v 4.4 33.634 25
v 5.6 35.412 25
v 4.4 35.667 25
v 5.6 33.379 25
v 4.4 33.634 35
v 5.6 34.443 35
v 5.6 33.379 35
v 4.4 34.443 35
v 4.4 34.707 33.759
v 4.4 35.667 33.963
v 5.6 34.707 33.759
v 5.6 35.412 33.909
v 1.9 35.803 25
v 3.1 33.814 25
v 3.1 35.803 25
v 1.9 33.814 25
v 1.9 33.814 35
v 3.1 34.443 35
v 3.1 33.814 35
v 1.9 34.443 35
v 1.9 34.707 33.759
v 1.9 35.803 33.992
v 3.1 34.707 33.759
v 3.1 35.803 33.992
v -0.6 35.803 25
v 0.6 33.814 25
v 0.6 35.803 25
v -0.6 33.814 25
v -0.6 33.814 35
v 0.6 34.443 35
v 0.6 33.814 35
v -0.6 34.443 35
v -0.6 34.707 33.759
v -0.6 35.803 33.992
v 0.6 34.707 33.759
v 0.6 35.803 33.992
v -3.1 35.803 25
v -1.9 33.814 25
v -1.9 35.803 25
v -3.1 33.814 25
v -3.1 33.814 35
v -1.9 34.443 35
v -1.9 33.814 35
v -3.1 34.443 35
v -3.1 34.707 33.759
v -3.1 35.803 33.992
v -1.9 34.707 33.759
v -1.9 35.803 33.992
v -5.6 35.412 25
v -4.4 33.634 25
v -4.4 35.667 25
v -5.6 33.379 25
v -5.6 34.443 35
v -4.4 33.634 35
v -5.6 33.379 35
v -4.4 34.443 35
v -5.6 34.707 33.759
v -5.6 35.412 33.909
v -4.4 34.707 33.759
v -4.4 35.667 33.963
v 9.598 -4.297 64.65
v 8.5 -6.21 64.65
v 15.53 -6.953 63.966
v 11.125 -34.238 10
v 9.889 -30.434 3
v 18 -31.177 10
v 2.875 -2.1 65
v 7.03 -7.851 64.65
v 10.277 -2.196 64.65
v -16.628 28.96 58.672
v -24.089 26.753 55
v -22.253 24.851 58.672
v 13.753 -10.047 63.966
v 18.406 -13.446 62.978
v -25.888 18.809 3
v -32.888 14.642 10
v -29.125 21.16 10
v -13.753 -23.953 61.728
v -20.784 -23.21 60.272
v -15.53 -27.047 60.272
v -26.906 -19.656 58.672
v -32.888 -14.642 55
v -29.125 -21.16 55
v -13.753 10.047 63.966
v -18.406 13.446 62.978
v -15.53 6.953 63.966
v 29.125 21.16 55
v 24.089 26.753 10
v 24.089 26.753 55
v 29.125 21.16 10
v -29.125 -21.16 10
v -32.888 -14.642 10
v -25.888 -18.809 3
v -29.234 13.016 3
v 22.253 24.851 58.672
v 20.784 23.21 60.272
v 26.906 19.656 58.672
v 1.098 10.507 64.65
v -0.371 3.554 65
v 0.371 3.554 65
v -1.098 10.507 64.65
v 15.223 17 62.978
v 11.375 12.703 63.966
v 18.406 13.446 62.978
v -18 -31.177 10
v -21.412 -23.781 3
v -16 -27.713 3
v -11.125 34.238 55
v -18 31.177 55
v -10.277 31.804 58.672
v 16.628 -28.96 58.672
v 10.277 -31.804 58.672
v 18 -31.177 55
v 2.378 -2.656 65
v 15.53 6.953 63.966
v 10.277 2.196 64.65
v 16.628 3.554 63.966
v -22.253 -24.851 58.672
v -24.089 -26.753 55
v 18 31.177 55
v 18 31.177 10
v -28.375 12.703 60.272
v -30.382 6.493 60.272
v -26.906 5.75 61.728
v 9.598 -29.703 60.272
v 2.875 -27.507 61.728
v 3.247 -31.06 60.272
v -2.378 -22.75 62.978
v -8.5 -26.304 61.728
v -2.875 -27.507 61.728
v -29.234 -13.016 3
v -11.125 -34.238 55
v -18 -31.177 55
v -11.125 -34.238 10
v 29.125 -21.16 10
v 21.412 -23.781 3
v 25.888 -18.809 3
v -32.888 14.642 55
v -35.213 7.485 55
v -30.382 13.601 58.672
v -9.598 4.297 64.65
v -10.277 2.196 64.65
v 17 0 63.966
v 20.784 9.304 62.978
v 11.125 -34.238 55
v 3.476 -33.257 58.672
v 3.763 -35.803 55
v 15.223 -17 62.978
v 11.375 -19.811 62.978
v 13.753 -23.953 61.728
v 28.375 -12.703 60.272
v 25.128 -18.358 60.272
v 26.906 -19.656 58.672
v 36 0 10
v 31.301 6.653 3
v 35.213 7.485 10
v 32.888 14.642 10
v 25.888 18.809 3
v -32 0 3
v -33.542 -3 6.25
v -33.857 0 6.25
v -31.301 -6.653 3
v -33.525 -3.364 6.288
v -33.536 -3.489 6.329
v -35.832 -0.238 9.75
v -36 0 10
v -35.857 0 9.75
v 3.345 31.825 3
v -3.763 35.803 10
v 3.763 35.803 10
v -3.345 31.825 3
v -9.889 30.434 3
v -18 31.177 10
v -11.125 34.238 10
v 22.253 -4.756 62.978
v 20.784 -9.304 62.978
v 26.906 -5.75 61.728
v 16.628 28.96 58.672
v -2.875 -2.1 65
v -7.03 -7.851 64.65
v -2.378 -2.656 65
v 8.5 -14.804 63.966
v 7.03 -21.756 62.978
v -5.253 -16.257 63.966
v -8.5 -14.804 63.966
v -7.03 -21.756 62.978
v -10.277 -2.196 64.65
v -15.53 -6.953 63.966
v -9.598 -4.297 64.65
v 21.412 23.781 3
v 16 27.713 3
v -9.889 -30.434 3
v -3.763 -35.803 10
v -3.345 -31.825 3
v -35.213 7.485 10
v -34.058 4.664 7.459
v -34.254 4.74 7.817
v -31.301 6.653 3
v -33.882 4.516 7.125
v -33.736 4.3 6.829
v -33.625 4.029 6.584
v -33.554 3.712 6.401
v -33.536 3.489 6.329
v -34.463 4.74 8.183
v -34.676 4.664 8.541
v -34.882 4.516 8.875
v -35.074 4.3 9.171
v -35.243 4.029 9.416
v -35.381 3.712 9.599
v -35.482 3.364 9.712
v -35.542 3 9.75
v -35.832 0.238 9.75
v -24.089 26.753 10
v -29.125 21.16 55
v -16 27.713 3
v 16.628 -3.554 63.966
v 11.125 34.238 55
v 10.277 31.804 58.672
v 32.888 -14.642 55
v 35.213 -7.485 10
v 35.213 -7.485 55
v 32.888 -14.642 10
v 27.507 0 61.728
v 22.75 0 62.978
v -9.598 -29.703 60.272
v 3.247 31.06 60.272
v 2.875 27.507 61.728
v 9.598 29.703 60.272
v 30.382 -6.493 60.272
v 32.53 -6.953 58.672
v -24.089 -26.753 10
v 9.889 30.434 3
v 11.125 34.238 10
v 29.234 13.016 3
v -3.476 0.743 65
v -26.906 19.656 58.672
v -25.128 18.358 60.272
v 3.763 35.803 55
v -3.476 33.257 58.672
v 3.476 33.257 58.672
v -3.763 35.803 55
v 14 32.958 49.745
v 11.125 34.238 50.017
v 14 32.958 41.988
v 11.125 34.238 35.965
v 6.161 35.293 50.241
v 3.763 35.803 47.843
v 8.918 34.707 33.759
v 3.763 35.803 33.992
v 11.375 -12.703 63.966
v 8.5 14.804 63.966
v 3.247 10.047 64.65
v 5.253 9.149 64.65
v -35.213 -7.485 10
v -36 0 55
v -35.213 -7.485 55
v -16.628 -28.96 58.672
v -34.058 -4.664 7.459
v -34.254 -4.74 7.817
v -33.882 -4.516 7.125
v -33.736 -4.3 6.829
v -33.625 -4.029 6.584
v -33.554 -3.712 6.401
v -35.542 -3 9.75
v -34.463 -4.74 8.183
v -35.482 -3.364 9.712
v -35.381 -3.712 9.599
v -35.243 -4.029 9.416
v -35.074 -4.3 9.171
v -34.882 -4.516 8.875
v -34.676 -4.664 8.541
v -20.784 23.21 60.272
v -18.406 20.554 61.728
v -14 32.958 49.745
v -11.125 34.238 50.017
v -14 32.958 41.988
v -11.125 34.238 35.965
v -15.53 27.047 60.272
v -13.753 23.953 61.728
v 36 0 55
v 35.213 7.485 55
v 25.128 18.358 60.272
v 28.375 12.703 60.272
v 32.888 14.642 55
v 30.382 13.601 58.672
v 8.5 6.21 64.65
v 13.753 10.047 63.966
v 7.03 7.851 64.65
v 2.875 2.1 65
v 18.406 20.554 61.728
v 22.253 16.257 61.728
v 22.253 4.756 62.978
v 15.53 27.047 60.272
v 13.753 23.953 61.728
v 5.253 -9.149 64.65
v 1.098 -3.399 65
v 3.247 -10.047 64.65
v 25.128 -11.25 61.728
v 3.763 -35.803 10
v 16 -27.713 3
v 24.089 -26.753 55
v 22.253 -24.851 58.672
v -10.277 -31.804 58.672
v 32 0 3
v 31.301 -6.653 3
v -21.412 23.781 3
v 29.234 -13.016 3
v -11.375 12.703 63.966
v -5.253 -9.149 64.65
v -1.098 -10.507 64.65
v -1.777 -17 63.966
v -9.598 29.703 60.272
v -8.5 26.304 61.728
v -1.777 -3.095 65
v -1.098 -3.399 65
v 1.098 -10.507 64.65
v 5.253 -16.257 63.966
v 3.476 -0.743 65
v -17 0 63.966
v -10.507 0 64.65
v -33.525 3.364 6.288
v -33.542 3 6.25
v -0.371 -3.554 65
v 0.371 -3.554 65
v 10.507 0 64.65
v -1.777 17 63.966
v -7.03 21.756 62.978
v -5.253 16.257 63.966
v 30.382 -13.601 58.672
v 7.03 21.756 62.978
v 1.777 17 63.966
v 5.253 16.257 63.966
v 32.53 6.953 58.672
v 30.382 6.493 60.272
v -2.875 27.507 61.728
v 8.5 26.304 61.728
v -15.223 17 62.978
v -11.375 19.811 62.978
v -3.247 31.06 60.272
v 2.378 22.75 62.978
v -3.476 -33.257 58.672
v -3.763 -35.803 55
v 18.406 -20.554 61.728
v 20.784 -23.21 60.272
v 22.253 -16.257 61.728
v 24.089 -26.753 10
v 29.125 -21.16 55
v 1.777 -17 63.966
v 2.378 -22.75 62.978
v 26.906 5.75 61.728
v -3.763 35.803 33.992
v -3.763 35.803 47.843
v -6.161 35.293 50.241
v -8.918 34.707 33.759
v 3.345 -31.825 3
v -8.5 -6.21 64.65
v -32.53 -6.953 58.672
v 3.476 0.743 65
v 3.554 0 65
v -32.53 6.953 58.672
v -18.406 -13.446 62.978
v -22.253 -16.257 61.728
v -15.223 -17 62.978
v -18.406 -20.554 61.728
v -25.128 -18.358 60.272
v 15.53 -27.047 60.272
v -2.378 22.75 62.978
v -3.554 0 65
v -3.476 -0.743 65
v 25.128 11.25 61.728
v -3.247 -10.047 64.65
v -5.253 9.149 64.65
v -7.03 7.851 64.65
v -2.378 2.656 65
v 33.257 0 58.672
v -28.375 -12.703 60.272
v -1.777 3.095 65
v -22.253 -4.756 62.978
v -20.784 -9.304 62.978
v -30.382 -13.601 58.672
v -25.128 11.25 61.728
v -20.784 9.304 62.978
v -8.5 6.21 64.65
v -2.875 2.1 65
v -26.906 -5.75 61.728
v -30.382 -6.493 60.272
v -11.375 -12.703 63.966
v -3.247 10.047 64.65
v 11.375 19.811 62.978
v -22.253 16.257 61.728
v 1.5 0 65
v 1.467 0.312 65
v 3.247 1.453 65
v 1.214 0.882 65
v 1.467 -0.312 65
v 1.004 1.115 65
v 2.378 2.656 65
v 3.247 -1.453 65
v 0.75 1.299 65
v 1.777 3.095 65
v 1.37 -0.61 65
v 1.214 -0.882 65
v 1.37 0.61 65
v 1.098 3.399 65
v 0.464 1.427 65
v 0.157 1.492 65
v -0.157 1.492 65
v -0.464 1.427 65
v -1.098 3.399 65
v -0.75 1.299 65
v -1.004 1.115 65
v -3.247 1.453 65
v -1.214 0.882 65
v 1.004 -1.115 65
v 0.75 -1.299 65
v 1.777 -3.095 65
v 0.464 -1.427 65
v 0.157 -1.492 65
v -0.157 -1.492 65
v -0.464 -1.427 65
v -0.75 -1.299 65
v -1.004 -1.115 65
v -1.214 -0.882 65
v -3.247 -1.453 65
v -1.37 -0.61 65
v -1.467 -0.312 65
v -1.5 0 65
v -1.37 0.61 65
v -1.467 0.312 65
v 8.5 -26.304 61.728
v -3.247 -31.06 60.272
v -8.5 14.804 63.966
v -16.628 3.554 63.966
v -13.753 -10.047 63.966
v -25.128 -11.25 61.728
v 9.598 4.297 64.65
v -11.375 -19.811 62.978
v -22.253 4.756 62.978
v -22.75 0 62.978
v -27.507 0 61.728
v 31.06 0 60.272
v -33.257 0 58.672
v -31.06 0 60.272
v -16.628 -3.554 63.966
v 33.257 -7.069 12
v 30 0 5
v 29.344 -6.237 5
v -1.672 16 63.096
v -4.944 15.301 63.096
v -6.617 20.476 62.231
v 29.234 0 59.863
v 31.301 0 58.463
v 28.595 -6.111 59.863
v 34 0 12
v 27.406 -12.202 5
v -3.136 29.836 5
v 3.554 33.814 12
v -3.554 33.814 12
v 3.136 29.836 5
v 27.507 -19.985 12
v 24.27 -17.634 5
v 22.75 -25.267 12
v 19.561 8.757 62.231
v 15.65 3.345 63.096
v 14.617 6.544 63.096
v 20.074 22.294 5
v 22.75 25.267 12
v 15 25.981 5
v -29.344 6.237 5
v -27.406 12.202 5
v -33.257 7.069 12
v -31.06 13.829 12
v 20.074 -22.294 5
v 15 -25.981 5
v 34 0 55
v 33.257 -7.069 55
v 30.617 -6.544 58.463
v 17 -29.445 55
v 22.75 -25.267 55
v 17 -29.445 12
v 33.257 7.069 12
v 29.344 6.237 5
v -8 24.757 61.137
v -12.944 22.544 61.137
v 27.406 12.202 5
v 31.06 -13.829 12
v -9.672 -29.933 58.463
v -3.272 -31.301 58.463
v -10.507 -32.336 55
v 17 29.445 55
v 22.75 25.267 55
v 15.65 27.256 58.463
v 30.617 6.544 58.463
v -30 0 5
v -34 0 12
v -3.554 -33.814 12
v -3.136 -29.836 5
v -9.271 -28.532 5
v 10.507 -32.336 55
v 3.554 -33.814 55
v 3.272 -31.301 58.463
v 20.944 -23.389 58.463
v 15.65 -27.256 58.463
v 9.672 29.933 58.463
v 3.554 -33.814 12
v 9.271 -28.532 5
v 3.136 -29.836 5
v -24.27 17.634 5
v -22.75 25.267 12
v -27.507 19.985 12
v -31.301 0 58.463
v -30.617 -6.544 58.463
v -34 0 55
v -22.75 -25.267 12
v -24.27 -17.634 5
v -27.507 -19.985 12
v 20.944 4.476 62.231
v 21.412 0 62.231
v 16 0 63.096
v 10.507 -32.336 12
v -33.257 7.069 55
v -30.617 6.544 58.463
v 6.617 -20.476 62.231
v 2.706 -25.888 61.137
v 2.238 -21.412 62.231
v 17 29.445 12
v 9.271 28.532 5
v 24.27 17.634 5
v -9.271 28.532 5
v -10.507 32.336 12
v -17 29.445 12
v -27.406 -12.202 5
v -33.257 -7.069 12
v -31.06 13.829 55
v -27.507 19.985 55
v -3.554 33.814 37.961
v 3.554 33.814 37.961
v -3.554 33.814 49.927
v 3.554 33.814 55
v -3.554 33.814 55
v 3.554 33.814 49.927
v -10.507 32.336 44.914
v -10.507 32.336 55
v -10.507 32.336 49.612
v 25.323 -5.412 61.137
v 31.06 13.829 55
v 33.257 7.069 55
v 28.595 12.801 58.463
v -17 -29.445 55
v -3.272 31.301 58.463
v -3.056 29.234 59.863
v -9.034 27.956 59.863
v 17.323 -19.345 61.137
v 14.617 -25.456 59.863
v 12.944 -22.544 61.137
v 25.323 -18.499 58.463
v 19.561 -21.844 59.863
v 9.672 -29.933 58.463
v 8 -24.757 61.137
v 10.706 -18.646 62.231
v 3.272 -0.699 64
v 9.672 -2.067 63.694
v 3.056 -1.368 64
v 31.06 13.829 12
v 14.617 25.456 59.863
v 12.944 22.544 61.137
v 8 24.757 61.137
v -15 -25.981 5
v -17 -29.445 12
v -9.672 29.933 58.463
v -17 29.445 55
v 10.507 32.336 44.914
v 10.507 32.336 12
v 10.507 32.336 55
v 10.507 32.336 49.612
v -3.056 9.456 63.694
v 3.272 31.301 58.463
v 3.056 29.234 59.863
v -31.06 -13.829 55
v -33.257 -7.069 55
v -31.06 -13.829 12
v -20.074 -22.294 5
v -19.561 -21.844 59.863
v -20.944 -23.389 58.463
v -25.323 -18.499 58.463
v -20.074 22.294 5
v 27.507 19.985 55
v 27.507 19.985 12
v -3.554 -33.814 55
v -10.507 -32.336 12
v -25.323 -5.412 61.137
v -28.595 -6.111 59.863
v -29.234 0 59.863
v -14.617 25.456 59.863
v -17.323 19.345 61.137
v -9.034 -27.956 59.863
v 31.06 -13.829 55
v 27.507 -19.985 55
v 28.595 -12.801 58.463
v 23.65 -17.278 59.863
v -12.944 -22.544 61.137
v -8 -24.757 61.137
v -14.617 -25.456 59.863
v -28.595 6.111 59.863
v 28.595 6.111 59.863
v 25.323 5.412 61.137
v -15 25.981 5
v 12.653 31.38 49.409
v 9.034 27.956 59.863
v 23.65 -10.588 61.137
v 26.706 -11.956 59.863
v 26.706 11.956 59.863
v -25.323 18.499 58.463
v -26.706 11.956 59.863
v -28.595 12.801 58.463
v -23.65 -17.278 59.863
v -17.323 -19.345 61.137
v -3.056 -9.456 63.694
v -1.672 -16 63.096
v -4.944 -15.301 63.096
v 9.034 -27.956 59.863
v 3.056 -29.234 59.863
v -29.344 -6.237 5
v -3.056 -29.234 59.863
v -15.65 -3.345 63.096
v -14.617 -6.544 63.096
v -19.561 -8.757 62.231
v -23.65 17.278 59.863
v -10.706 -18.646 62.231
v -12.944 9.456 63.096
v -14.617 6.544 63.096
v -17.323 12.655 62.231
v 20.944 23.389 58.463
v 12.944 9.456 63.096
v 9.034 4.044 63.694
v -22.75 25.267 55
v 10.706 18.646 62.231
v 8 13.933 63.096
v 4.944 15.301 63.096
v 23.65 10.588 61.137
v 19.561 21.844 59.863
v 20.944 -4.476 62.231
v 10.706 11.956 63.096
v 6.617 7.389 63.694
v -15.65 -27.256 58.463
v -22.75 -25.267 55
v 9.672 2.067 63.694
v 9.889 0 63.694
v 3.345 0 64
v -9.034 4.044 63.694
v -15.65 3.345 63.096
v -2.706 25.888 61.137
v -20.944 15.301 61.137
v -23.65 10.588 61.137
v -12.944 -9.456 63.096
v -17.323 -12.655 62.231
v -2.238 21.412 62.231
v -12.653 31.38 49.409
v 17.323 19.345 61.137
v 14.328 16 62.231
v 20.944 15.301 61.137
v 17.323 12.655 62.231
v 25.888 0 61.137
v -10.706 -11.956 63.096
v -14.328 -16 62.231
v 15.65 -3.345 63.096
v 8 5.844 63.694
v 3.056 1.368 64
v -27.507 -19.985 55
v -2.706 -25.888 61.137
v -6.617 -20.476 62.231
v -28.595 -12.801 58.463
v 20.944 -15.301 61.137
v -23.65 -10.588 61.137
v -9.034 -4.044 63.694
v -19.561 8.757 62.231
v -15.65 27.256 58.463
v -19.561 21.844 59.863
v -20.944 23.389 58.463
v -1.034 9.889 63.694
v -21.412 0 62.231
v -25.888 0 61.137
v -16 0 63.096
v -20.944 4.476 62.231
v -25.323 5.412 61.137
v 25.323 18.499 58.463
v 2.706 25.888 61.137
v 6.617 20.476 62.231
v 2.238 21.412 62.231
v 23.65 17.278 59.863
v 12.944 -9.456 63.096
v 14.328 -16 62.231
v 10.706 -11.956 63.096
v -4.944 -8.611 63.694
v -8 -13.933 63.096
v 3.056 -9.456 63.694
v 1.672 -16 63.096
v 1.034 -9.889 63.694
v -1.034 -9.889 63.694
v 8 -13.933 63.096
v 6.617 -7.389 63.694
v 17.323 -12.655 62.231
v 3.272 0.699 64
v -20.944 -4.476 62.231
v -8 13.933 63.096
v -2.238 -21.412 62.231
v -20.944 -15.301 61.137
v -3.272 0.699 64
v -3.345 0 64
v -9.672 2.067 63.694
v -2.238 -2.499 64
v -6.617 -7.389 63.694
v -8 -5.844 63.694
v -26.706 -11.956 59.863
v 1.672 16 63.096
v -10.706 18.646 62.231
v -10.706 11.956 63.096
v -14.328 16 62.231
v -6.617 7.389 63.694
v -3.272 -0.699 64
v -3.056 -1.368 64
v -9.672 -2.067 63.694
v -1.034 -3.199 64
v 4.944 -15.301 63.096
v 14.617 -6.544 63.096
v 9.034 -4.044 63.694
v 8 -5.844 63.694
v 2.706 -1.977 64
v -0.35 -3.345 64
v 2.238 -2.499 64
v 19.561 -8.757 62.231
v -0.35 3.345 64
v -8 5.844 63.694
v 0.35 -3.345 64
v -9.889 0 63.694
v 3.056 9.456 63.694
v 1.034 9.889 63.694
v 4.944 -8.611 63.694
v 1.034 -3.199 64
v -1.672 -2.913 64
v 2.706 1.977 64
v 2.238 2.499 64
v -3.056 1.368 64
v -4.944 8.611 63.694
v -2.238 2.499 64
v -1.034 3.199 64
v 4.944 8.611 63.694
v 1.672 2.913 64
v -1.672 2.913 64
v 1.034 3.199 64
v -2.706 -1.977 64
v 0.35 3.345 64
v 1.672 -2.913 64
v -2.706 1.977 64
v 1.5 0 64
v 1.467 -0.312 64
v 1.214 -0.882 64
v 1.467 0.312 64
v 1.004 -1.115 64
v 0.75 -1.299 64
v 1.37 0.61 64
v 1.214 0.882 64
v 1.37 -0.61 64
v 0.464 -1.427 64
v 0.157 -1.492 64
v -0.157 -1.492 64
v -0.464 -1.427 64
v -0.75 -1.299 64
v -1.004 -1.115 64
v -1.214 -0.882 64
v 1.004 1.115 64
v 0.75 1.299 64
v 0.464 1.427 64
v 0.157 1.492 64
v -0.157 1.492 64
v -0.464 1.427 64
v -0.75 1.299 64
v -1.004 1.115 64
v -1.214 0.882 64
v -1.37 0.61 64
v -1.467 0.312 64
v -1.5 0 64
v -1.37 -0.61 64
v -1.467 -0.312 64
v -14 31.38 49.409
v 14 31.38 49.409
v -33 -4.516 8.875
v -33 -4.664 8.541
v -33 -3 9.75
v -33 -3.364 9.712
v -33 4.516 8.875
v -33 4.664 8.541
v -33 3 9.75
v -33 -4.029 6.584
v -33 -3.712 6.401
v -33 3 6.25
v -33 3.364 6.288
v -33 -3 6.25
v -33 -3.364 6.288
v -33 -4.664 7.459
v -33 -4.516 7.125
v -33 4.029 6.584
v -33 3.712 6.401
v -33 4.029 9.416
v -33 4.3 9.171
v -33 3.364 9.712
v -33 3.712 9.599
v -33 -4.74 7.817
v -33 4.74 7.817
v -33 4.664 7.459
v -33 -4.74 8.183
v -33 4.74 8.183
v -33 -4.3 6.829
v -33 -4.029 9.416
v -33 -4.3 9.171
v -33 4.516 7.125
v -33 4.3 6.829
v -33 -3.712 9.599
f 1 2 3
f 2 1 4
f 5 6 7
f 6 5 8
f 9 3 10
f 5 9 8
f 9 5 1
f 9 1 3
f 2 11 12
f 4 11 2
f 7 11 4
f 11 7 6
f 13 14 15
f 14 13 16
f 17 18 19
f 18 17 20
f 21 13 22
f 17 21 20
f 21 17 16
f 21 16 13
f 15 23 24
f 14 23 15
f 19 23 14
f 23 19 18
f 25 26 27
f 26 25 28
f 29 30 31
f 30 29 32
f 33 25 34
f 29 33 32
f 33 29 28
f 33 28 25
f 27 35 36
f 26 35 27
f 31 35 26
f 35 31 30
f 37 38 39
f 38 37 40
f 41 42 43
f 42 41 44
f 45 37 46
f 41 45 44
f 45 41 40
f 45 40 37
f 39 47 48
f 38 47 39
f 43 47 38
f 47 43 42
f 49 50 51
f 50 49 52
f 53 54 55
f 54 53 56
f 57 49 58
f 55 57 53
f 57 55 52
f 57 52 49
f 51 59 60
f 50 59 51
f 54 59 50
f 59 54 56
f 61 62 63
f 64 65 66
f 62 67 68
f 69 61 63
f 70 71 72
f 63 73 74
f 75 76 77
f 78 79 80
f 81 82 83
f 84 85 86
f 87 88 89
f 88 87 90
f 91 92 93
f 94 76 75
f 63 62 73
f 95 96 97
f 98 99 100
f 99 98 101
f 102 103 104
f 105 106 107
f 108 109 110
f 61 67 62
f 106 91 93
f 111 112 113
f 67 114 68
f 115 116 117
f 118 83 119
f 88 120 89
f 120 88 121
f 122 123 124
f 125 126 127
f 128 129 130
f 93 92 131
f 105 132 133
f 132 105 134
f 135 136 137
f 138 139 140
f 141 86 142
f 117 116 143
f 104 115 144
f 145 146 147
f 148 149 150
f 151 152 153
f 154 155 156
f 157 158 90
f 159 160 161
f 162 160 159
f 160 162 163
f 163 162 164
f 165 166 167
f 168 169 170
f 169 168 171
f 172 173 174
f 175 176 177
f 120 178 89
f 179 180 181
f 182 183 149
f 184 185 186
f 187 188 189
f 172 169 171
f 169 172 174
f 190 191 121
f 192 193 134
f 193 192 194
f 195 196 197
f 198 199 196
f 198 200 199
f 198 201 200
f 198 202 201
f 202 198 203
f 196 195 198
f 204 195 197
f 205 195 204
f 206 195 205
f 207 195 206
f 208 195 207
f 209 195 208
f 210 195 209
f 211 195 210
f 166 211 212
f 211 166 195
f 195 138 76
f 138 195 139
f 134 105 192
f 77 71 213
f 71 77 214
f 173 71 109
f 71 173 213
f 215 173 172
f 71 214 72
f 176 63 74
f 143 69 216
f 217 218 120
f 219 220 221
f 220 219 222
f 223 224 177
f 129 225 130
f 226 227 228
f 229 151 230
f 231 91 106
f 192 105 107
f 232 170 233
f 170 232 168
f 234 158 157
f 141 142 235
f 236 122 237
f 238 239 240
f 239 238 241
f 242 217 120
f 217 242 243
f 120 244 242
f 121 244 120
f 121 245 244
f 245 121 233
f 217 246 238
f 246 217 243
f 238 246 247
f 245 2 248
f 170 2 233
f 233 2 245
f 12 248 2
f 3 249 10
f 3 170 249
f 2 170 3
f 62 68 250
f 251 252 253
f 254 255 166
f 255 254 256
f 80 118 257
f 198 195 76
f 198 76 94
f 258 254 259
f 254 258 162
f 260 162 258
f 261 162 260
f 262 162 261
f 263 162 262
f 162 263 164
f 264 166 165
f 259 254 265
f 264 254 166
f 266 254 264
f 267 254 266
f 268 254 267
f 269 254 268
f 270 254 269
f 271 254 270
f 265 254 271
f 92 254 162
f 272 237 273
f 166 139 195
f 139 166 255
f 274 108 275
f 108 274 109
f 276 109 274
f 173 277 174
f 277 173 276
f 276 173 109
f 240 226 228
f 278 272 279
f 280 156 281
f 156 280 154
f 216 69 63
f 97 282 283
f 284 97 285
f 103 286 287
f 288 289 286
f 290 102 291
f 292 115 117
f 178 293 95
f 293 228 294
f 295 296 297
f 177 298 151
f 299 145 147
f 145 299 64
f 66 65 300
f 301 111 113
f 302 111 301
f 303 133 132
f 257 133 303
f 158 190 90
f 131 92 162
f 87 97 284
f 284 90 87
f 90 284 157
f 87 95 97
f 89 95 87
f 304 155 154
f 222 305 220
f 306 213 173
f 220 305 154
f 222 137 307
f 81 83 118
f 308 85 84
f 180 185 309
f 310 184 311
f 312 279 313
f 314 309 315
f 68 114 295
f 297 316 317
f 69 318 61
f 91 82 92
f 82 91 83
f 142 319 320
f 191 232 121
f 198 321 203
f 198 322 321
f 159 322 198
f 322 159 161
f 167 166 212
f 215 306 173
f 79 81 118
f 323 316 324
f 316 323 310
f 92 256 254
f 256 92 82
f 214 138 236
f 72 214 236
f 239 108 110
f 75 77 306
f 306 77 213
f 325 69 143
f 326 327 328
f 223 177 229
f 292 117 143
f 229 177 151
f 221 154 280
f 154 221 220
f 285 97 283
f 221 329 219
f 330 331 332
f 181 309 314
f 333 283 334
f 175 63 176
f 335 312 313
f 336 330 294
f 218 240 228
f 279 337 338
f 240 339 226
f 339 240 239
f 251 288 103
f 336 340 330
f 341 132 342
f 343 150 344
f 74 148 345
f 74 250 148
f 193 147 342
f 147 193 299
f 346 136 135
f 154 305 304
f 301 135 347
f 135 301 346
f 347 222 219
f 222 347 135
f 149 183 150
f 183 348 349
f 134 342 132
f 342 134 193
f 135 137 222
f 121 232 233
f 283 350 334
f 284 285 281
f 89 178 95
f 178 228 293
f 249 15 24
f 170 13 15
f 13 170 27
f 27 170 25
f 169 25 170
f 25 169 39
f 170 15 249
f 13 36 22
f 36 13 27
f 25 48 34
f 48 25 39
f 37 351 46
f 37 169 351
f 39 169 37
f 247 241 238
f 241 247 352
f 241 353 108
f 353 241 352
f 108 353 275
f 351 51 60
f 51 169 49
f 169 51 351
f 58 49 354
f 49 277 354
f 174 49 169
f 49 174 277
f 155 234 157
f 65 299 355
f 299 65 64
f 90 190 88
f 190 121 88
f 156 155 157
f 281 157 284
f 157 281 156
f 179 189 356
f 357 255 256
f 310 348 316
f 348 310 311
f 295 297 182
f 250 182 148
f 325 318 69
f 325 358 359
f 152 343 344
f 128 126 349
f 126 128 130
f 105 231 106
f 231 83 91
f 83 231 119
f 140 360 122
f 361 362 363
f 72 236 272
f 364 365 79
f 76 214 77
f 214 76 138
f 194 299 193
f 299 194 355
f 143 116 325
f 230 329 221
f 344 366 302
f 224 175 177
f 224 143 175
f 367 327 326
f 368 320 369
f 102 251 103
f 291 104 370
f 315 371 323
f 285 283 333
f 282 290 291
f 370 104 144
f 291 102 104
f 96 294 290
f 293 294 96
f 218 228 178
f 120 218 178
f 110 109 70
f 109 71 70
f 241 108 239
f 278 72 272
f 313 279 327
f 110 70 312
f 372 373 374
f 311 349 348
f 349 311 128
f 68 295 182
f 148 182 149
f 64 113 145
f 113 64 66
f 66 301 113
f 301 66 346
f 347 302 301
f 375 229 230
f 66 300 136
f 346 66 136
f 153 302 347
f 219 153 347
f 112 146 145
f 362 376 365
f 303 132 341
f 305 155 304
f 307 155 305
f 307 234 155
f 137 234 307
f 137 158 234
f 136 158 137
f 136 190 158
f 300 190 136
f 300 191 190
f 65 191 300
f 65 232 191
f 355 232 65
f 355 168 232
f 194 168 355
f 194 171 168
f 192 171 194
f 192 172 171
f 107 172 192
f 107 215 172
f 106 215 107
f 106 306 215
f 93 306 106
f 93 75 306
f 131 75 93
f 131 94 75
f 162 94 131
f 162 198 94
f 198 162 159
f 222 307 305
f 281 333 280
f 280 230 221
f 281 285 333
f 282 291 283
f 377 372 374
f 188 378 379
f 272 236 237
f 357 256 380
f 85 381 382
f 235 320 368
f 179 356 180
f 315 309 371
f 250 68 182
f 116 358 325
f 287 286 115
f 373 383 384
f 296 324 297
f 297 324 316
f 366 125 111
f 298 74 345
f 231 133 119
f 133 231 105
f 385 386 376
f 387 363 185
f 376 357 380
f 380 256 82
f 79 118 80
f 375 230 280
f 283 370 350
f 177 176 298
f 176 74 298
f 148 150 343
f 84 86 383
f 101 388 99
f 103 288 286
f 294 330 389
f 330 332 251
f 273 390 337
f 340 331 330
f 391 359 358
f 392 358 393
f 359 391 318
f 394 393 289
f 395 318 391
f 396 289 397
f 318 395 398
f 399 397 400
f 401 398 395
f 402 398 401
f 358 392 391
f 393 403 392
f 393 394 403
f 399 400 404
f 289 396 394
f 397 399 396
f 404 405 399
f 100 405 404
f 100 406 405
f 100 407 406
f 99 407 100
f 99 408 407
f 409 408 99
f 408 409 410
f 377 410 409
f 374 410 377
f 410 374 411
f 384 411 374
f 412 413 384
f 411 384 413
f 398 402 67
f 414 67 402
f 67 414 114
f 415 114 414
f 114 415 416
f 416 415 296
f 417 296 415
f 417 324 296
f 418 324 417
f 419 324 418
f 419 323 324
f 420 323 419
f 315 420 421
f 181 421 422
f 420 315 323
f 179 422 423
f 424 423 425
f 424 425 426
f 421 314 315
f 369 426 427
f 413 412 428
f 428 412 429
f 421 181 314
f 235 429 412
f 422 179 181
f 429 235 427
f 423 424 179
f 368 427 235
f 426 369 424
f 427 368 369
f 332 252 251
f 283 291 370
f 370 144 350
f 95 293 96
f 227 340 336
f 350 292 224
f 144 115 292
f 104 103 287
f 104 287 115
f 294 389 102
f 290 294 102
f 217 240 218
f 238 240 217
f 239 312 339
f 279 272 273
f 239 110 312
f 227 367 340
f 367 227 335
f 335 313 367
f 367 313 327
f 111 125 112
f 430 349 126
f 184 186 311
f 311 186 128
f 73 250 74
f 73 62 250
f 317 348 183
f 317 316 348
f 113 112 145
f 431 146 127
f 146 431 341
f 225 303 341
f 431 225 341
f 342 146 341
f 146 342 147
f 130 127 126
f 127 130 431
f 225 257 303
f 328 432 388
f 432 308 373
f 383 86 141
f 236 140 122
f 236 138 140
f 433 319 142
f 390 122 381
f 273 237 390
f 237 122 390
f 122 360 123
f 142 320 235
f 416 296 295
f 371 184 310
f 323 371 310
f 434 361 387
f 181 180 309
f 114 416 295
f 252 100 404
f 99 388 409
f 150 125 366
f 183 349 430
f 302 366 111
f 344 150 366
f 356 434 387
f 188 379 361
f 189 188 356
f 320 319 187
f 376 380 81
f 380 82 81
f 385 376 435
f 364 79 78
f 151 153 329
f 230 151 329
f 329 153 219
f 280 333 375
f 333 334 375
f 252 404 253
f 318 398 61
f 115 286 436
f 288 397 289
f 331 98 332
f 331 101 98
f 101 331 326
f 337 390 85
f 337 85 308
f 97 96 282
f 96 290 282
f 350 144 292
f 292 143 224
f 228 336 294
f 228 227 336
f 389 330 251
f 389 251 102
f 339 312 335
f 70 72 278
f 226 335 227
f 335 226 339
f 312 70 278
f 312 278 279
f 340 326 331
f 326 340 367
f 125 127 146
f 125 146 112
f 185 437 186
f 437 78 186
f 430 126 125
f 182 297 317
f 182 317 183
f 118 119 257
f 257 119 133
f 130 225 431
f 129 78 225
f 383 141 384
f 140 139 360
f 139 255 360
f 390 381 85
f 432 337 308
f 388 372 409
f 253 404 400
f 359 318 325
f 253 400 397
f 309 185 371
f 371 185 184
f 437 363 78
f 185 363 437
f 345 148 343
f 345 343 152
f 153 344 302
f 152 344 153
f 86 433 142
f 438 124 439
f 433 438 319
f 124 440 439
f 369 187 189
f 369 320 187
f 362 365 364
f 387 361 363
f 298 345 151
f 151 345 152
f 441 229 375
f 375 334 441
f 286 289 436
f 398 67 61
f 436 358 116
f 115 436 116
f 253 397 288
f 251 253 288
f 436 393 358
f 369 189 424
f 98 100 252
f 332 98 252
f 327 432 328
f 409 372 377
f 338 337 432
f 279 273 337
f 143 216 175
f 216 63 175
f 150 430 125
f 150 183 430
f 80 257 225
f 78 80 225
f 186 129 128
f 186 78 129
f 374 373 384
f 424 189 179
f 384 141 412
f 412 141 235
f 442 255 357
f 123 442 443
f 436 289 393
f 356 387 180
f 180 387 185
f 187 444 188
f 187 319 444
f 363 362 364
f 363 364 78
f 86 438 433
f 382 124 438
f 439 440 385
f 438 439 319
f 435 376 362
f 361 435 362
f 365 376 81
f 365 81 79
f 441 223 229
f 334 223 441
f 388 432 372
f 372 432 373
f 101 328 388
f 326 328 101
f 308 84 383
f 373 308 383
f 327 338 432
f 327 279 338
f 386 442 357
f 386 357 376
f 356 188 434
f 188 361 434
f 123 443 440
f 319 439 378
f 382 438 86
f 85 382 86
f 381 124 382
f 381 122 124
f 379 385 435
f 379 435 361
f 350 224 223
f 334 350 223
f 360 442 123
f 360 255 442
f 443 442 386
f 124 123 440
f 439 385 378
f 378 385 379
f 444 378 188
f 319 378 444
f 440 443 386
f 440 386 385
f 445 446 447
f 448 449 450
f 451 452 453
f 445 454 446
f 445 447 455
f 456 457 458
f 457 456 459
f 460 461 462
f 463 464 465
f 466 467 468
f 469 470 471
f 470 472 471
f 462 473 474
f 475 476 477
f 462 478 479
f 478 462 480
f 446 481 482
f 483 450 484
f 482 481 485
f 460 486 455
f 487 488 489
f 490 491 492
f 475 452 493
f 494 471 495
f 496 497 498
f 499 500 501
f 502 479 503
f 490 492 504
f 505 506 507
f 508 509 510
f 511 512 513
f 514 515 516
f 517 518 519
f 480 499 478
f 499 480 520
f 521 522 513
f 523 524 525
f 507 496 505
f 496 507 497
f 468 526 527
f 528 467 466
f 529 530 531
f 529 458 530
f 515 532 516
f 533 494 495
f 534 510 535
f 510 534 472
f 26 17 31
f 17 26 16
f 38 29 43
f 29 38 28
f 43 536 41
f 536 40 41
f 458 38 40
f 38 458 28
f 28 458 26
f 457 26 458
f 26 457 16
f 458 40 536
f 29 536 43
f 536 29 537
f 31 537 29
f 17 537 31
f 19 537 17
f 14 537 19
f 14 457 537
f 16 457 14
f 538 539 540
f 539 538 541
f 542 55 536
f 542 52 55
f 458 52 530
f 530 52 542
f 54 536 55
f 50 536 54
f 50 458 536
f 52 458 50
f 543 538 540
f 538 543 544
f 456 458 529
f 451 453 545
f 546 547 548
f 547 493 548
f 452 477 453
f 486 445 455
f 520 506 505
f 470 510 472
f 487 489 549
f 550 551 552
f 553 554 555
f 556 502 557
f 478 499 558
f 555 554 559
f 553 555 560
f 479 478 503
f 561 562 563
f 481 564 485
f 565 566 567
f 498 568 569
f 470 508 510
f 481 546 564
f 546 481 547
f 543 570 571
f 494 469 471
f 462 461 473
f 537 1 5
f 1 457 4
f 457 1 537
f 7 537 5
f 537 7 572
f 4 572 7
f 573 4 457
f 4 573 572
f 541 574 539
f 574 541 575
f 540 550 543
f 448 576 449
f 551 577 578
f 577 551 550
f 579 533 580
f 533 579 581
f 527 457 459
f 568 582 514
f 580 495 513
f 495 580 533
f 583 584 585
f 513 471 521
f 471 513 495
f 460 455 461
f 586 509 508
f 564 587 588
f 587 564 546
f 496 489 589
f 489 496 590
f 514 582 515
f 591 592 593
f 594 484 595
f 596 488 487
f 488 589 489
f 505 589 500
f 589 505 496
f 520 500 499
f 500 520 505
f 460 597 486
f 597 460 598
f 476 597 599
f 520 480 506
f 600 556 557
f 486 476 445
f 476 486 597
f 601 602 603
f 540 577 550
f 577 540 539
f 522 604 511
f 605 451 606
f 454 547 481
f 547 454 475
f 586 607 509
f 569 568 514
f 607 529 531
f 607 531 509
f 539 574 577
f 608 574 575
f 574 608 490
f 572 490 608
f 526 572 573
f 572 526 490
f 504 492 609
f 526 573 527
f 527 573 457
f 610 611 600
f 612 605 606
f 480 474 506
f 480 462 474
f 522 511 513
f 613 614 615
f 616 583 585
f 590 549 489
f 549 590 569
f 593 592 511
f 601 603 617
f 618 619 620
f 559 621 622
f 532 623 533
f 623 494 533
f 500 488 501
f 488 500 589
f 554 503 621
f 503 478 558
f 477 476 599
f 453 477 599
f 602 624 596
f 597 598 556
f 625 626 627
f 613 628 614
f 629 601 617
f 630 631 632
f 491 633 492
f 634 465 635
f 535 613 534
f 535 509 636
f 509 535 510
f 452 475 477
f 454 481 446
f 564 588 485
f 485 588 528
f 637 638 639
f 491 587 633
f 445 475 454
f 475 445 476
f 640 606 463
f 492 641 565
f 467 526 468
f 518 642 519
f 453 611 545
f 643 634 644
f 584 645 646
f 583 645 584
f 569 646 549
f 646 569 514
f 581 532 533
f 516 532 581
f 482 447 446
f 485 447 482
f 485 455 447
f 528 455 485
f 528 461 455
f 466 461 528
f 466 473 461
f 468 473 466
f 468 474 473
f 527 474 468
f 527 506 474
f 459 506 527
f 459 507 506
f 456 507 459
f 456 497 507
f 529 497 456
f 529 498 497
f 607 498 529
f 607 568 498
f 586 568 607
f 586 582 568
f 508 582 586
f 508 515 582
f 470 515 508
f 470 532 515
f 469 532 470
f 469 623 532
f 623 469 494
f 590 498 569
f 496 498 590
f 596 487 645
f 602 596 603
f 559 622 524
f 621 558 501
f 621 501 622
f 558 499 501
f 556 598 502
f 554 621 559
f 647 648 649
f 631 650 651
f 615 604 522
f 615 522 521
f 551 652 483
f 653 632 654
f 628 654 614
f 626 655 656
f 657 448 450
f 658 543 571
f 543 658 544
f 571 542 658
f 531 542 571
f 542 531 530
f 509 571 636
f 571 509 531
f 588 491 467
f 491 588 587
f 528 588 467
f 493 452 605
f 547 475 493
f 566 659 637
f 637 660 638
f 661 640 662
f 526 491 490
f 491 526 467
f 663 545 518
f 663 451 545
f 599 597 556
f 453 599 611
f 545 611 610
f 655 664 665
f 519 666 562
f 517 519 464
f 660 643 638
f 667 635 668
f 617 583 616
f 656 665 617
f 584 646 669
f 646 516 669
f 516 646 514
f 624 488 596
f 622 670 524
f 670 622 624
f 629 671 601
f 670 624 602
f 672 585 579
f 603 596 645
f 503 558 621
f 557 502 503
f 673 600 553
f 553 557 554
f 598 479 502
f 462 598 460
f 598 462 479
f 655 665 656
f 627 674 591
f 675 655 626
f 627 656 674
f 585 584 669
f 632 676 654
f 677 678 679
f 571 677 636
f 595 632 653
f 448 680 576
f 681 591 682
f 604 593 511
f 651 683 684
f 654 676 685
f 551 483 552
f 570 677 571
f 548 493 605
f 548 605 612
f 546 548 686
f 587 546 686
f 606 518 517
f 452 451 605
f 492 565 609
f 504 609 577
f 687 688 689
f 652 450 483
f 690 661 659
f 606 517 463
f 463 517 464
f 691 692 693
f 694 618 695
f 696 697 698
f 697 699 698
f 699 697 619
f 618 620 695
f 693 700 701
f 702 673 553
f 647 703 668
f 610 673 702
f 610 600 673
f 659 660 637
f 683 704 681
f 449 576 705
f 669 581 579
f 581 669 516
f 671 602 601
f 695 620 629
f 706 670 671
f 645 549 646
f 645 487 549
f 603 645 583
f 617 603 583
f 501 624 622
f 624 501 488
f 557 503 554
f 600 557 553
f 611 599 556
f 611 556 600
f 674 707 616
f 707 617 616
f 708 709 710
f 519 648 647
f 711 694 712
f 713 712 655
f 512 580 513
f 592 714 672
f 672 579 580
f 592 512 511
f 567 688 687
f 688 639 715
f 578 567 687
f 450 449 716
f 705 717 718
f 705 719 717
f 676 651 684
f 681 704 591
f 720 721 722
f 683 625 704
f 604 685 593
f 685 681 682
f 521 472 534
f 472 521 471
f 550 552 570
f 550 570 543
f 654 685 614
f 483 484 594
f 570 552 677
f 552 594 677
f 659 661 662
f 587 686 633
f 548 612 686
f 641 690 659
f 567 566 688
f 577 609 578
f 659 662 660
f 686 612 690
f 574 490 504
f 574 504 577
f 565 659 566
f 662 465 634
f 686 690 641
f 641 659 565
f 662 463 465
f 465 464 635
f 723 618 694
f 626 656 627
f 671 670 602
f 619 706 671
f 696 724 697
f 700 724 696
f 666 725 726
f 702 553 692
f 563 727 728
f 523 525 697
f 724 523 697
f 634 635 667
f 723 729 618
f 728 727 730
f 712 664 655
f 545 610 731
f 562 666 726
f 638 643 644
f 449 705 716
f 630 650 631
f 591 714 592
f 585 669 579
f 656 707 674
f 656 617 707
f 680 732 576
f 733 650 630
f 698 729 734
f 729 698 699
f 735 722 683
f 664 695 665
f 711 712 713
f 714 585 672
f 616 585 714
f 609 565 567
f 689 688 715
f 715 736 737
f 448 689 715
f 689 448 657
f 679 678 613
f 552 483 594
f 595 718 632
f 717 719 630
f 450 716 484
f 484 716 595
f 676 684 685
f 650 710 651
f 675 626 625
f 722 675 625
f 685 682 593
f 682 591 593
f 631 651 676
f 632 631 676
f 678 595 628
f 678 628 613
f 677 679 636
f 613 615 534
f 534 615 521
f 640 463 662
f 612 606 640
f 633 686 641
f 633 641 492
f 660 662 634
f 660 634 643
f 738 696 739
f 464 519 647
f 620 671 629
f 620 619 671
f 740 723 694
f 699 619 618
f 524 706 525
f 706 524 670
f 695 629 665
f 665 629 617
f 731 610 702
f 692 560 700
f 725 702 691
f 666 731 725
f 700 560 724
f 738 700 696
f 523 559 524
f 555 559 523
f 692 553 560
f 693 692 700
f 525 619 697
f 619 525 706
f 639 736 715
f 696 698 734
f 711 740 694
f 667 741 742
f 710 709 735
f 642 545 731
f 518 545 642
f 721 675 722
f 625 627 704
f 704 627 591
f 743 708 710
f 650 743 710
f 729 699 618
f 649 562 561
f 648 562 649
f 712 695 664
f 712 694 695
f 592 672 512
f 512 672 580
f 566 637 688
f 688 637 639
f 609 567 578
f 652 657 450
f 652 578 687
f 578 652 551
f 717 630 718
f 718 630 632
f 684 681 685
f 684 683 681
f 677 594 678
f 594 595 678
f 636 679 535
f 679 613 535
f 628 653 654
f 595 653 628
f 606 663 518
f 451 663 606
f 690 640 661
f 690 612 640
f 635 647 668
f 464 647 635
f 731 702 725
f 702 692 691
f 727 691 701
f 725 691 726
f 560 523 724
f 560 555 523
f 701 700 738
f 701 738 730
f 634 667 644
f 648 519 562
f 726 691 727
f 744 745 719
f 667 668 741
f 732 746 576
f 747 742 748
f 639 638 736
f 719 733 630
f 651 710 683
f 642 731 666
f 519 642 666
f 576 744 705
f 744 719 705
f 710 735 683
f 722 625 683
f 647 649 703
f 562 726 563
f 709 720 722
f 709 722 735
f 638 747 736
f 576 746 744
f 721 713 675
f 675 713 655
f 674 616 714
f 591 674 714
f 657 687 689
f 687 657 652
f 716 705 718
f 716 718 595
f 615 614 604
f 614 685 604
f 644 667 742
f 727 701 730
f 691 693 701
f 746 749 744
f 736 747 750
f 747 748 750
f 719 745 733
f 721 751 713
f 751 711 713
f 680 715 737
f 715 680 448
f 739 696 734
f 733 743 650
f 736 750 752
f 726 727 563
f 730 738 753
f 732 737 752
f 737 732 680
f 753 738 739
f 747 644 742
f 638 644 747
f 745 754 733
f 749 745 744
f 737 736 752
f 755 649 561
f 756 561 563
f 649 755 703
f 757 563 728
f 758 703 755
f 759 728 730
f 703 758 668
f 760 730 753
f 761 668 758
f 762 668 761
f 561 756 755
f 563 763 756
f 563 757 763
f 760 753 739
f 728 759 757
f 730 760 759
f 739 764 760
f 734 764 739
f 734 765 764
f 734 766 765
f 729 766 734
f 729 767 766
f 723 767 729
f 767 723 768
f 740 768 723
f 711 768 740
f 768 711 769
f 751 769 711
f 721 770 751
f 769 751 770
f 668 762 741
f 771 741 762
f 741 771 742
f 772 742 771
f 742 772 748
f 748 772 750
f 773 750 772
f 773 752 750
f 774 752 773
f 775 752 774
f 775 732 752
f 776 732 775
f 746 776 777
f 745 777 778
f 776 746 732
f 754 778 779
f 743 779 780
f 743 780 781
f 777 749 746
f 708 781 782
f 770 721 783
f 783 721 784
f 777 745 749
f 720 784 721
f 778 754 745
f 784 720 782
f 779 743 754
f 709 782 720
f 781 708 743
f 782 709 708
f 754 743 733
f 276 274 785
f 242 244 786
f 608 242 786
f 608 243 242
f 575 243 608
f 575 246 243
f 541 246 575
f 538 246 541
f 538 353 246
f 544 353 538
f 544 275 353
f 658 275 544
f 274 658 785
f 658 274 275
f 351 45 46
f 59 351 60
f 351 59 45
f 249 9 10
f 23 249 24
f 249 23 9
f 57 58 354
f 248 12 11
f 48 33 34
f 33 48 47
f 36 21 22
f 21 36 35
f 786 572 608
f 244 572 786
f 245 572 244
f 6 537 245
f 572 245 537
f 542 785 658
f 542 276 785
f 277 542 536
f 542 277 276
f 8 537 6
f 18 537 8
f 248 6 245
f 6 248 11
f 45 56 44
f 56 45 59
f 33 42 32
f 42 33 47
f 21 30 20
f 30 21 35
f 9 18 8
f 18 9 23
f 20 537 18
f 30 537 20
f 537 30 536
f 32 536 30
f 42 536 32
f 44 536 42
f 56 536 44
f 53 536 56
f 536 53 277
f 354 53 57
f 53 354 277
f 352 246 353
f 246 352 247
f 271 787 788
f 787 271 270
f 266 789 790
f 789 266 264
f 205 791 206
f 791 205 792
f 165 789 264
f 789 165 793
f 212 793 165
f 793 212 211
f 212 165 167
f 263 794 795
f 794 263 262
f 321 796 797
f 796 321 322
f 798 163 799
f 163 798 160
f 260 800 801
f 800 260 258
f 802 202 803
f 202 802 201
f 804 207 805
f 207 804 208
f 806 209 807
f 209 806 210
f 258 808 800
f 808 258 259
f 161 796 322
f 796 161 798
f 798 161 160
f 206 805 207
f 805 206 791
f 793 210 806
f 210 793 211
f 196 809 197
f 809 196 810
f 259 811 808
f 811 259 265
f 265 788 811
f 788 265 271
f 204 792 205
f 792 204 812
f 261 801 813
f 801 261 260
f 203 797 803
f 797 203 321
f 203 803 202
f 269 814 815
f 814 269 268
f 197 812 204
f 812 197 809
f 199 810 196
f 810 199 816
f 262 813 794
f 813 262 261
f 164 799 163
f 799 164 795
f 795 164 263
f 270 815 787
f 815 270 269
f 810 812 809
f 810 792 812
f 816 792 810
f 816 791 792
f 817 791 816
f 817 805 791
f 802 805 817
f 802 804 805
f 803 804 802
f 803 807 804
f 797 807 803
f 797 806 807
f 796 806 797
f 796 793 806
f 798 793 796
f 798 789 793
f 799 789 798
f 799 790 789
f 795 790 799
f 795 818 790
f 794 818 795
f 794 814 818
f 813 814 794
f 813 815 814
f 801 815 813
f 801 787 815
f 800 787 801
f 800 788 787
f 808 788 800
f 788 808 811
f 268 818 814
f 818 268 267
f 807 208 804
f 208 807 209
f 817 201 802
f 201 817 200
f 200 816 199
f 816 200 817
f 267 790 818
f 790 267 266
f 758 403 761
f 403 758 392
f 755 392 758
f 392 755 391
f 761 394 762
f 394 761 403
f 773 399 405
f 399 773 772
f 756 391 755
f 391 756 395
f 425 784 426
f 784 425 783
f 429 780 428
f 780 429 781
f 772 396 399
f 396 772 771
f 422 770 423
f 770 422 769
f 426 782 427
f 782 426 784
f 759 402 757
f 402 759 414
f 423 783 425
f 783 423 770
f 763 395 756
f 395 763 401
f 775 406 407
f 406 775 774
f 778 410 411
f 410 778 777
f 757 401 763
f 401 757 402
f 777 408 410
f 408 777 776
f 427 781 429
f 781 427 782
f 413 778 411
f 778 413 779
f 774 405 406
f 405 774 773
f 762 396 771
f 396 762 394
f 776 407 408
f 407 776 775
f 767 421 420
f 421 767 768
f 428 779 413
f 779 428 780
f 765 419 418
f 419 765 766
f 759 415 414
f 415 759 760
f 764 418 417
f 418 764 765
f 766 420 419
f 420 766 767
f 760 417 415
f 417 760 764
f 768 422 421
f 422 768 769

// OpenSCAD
// RWC Desktop Assistant - Enclosure
// Organic "pebble" shape - rounded cylindrical form with tilted face
// Fits within 80x80x80mm bounding box
// Modules: Core + Display(0.96" OLED) + Audio(mic+speaker)

$fn = 30;

// --- Parameters ---
body_d = 72;          // outer diameter
body_h = 65;          // total height
wall = 2.0;           // wall thickness
tilt = 12;            // screen face tilt angle (degrees)

// OLED window (0.96" SSD1306: ~27x19mm visible)
oled_w = 28;
oled_h = 16;
oled_z = 42;          // center height on front face

// Speaker grille (right side)
spk_d = 20;
spk_z = 30;

// Mic hole (top)
mic_d = 3;

// USB-C port (back, bottom)
usbc_w = 9.5;
usbc_h = 3.5;
usbc_z = 8;

// Anti-slip pad recesses (bottom)
pad_d = 10;
pad_depth = 0.8;
pad_r = 25;           // distance from center

// --- Modules ---

module speaker_grille(d, z) {
    // Array of slots
    slot_w = 1.2;
    slot_l = 10;
    n = 5;
    spacing = 2.5;
    rotate([0, 0, 90])
    translate([body_d/2 - wall + 1, 0, z])
    rotate([0, 90, 0])
    for (i = [-(n-1)/2 : (n-1)/2]) {
        translate([0, i * spacing, 0])
            cube([slot_l, slot_w, wall + 2], center=true);
    }
}

module usb_c_cutout() {
    translate([-body_d/2 + wall - 1, 0, usbc_z])
    rotate([0, 90, 0])
        hull() {
            for (dx = [-(usbc_w/2 - usbc_h/2), (usbc_w/2 - usbc_h/2)])
                translate([0, dx, 0])
                    cylinder(d=usbc_h, h=wall+2, center=true);
        }
}

module anti_slip_pads() {
    for (a = [0, 120, 240]) {
        rotate([0, 0, a])
        translate([pad_r, 0, -0.01])
            cylinder(d=pad_d, h=pad_depth);
    }
}

module oled_window() {
    // Tilted window on front face
    translate([0, body_d/2 - wall + 1, oled_z])
    rotate([tilt, 0, 0])
        cube([oled_w, wall + 2, oled_h], center=true);
}

module mic_hole() {
    translate([0, 0, body_h])
        cylinder(d=mic_d, h=wall + 2, center=true);
}

// --- Main Body ---
module body_outer() {
    hull() {
        // Bottom disc - slightly smaller
        translate([0, 0, 3])
            cylinder(d=body_d - 8, h=1);
        // Main body
        translate([0, 0, 10])
            cylinder(d=body_d, h=body_h - 20);
        // Top dome
        translate([0, 0, body_h - 8])
            resize([body_d - 4, body_d - 4, 16])
                sphere(d=body_d - 4);
    }
}

module body_inner() {
    translate([0, 0, wall])
    hull() {
        translate([0, 0, 3])
            cylinder(d=body_d - 8 - wall*2, h=1);
        translate([0, 0, 10])
            cylinder(d=body_d - wall*2, h=body_h - 20 - wall);
        translate([0, 0, body_h - 8 - wall])
            resize([body_d - 4 - wall*2, body_d - 4 - wall*2, 16 - wall])
                sphere(d=body_d - 4 - wall*2);
    }
}

// --- Split: Top shell + Bottom base ---
split_z = 20; // split height

module full_shell() {
    difference() {
        body_outer();
        body_inner();
        oled_window();
        speaker_grille(spk_d, spk_z);
        usb_c_cutout();
        mic_hole();
        // Bottom pad recesses
        anti_slip_pads();
    }
}

// Render full shell (print as one piece with pause-at-layer for module insertion,
// or split into top/bottom with a horizontal cut)
full_shell();
